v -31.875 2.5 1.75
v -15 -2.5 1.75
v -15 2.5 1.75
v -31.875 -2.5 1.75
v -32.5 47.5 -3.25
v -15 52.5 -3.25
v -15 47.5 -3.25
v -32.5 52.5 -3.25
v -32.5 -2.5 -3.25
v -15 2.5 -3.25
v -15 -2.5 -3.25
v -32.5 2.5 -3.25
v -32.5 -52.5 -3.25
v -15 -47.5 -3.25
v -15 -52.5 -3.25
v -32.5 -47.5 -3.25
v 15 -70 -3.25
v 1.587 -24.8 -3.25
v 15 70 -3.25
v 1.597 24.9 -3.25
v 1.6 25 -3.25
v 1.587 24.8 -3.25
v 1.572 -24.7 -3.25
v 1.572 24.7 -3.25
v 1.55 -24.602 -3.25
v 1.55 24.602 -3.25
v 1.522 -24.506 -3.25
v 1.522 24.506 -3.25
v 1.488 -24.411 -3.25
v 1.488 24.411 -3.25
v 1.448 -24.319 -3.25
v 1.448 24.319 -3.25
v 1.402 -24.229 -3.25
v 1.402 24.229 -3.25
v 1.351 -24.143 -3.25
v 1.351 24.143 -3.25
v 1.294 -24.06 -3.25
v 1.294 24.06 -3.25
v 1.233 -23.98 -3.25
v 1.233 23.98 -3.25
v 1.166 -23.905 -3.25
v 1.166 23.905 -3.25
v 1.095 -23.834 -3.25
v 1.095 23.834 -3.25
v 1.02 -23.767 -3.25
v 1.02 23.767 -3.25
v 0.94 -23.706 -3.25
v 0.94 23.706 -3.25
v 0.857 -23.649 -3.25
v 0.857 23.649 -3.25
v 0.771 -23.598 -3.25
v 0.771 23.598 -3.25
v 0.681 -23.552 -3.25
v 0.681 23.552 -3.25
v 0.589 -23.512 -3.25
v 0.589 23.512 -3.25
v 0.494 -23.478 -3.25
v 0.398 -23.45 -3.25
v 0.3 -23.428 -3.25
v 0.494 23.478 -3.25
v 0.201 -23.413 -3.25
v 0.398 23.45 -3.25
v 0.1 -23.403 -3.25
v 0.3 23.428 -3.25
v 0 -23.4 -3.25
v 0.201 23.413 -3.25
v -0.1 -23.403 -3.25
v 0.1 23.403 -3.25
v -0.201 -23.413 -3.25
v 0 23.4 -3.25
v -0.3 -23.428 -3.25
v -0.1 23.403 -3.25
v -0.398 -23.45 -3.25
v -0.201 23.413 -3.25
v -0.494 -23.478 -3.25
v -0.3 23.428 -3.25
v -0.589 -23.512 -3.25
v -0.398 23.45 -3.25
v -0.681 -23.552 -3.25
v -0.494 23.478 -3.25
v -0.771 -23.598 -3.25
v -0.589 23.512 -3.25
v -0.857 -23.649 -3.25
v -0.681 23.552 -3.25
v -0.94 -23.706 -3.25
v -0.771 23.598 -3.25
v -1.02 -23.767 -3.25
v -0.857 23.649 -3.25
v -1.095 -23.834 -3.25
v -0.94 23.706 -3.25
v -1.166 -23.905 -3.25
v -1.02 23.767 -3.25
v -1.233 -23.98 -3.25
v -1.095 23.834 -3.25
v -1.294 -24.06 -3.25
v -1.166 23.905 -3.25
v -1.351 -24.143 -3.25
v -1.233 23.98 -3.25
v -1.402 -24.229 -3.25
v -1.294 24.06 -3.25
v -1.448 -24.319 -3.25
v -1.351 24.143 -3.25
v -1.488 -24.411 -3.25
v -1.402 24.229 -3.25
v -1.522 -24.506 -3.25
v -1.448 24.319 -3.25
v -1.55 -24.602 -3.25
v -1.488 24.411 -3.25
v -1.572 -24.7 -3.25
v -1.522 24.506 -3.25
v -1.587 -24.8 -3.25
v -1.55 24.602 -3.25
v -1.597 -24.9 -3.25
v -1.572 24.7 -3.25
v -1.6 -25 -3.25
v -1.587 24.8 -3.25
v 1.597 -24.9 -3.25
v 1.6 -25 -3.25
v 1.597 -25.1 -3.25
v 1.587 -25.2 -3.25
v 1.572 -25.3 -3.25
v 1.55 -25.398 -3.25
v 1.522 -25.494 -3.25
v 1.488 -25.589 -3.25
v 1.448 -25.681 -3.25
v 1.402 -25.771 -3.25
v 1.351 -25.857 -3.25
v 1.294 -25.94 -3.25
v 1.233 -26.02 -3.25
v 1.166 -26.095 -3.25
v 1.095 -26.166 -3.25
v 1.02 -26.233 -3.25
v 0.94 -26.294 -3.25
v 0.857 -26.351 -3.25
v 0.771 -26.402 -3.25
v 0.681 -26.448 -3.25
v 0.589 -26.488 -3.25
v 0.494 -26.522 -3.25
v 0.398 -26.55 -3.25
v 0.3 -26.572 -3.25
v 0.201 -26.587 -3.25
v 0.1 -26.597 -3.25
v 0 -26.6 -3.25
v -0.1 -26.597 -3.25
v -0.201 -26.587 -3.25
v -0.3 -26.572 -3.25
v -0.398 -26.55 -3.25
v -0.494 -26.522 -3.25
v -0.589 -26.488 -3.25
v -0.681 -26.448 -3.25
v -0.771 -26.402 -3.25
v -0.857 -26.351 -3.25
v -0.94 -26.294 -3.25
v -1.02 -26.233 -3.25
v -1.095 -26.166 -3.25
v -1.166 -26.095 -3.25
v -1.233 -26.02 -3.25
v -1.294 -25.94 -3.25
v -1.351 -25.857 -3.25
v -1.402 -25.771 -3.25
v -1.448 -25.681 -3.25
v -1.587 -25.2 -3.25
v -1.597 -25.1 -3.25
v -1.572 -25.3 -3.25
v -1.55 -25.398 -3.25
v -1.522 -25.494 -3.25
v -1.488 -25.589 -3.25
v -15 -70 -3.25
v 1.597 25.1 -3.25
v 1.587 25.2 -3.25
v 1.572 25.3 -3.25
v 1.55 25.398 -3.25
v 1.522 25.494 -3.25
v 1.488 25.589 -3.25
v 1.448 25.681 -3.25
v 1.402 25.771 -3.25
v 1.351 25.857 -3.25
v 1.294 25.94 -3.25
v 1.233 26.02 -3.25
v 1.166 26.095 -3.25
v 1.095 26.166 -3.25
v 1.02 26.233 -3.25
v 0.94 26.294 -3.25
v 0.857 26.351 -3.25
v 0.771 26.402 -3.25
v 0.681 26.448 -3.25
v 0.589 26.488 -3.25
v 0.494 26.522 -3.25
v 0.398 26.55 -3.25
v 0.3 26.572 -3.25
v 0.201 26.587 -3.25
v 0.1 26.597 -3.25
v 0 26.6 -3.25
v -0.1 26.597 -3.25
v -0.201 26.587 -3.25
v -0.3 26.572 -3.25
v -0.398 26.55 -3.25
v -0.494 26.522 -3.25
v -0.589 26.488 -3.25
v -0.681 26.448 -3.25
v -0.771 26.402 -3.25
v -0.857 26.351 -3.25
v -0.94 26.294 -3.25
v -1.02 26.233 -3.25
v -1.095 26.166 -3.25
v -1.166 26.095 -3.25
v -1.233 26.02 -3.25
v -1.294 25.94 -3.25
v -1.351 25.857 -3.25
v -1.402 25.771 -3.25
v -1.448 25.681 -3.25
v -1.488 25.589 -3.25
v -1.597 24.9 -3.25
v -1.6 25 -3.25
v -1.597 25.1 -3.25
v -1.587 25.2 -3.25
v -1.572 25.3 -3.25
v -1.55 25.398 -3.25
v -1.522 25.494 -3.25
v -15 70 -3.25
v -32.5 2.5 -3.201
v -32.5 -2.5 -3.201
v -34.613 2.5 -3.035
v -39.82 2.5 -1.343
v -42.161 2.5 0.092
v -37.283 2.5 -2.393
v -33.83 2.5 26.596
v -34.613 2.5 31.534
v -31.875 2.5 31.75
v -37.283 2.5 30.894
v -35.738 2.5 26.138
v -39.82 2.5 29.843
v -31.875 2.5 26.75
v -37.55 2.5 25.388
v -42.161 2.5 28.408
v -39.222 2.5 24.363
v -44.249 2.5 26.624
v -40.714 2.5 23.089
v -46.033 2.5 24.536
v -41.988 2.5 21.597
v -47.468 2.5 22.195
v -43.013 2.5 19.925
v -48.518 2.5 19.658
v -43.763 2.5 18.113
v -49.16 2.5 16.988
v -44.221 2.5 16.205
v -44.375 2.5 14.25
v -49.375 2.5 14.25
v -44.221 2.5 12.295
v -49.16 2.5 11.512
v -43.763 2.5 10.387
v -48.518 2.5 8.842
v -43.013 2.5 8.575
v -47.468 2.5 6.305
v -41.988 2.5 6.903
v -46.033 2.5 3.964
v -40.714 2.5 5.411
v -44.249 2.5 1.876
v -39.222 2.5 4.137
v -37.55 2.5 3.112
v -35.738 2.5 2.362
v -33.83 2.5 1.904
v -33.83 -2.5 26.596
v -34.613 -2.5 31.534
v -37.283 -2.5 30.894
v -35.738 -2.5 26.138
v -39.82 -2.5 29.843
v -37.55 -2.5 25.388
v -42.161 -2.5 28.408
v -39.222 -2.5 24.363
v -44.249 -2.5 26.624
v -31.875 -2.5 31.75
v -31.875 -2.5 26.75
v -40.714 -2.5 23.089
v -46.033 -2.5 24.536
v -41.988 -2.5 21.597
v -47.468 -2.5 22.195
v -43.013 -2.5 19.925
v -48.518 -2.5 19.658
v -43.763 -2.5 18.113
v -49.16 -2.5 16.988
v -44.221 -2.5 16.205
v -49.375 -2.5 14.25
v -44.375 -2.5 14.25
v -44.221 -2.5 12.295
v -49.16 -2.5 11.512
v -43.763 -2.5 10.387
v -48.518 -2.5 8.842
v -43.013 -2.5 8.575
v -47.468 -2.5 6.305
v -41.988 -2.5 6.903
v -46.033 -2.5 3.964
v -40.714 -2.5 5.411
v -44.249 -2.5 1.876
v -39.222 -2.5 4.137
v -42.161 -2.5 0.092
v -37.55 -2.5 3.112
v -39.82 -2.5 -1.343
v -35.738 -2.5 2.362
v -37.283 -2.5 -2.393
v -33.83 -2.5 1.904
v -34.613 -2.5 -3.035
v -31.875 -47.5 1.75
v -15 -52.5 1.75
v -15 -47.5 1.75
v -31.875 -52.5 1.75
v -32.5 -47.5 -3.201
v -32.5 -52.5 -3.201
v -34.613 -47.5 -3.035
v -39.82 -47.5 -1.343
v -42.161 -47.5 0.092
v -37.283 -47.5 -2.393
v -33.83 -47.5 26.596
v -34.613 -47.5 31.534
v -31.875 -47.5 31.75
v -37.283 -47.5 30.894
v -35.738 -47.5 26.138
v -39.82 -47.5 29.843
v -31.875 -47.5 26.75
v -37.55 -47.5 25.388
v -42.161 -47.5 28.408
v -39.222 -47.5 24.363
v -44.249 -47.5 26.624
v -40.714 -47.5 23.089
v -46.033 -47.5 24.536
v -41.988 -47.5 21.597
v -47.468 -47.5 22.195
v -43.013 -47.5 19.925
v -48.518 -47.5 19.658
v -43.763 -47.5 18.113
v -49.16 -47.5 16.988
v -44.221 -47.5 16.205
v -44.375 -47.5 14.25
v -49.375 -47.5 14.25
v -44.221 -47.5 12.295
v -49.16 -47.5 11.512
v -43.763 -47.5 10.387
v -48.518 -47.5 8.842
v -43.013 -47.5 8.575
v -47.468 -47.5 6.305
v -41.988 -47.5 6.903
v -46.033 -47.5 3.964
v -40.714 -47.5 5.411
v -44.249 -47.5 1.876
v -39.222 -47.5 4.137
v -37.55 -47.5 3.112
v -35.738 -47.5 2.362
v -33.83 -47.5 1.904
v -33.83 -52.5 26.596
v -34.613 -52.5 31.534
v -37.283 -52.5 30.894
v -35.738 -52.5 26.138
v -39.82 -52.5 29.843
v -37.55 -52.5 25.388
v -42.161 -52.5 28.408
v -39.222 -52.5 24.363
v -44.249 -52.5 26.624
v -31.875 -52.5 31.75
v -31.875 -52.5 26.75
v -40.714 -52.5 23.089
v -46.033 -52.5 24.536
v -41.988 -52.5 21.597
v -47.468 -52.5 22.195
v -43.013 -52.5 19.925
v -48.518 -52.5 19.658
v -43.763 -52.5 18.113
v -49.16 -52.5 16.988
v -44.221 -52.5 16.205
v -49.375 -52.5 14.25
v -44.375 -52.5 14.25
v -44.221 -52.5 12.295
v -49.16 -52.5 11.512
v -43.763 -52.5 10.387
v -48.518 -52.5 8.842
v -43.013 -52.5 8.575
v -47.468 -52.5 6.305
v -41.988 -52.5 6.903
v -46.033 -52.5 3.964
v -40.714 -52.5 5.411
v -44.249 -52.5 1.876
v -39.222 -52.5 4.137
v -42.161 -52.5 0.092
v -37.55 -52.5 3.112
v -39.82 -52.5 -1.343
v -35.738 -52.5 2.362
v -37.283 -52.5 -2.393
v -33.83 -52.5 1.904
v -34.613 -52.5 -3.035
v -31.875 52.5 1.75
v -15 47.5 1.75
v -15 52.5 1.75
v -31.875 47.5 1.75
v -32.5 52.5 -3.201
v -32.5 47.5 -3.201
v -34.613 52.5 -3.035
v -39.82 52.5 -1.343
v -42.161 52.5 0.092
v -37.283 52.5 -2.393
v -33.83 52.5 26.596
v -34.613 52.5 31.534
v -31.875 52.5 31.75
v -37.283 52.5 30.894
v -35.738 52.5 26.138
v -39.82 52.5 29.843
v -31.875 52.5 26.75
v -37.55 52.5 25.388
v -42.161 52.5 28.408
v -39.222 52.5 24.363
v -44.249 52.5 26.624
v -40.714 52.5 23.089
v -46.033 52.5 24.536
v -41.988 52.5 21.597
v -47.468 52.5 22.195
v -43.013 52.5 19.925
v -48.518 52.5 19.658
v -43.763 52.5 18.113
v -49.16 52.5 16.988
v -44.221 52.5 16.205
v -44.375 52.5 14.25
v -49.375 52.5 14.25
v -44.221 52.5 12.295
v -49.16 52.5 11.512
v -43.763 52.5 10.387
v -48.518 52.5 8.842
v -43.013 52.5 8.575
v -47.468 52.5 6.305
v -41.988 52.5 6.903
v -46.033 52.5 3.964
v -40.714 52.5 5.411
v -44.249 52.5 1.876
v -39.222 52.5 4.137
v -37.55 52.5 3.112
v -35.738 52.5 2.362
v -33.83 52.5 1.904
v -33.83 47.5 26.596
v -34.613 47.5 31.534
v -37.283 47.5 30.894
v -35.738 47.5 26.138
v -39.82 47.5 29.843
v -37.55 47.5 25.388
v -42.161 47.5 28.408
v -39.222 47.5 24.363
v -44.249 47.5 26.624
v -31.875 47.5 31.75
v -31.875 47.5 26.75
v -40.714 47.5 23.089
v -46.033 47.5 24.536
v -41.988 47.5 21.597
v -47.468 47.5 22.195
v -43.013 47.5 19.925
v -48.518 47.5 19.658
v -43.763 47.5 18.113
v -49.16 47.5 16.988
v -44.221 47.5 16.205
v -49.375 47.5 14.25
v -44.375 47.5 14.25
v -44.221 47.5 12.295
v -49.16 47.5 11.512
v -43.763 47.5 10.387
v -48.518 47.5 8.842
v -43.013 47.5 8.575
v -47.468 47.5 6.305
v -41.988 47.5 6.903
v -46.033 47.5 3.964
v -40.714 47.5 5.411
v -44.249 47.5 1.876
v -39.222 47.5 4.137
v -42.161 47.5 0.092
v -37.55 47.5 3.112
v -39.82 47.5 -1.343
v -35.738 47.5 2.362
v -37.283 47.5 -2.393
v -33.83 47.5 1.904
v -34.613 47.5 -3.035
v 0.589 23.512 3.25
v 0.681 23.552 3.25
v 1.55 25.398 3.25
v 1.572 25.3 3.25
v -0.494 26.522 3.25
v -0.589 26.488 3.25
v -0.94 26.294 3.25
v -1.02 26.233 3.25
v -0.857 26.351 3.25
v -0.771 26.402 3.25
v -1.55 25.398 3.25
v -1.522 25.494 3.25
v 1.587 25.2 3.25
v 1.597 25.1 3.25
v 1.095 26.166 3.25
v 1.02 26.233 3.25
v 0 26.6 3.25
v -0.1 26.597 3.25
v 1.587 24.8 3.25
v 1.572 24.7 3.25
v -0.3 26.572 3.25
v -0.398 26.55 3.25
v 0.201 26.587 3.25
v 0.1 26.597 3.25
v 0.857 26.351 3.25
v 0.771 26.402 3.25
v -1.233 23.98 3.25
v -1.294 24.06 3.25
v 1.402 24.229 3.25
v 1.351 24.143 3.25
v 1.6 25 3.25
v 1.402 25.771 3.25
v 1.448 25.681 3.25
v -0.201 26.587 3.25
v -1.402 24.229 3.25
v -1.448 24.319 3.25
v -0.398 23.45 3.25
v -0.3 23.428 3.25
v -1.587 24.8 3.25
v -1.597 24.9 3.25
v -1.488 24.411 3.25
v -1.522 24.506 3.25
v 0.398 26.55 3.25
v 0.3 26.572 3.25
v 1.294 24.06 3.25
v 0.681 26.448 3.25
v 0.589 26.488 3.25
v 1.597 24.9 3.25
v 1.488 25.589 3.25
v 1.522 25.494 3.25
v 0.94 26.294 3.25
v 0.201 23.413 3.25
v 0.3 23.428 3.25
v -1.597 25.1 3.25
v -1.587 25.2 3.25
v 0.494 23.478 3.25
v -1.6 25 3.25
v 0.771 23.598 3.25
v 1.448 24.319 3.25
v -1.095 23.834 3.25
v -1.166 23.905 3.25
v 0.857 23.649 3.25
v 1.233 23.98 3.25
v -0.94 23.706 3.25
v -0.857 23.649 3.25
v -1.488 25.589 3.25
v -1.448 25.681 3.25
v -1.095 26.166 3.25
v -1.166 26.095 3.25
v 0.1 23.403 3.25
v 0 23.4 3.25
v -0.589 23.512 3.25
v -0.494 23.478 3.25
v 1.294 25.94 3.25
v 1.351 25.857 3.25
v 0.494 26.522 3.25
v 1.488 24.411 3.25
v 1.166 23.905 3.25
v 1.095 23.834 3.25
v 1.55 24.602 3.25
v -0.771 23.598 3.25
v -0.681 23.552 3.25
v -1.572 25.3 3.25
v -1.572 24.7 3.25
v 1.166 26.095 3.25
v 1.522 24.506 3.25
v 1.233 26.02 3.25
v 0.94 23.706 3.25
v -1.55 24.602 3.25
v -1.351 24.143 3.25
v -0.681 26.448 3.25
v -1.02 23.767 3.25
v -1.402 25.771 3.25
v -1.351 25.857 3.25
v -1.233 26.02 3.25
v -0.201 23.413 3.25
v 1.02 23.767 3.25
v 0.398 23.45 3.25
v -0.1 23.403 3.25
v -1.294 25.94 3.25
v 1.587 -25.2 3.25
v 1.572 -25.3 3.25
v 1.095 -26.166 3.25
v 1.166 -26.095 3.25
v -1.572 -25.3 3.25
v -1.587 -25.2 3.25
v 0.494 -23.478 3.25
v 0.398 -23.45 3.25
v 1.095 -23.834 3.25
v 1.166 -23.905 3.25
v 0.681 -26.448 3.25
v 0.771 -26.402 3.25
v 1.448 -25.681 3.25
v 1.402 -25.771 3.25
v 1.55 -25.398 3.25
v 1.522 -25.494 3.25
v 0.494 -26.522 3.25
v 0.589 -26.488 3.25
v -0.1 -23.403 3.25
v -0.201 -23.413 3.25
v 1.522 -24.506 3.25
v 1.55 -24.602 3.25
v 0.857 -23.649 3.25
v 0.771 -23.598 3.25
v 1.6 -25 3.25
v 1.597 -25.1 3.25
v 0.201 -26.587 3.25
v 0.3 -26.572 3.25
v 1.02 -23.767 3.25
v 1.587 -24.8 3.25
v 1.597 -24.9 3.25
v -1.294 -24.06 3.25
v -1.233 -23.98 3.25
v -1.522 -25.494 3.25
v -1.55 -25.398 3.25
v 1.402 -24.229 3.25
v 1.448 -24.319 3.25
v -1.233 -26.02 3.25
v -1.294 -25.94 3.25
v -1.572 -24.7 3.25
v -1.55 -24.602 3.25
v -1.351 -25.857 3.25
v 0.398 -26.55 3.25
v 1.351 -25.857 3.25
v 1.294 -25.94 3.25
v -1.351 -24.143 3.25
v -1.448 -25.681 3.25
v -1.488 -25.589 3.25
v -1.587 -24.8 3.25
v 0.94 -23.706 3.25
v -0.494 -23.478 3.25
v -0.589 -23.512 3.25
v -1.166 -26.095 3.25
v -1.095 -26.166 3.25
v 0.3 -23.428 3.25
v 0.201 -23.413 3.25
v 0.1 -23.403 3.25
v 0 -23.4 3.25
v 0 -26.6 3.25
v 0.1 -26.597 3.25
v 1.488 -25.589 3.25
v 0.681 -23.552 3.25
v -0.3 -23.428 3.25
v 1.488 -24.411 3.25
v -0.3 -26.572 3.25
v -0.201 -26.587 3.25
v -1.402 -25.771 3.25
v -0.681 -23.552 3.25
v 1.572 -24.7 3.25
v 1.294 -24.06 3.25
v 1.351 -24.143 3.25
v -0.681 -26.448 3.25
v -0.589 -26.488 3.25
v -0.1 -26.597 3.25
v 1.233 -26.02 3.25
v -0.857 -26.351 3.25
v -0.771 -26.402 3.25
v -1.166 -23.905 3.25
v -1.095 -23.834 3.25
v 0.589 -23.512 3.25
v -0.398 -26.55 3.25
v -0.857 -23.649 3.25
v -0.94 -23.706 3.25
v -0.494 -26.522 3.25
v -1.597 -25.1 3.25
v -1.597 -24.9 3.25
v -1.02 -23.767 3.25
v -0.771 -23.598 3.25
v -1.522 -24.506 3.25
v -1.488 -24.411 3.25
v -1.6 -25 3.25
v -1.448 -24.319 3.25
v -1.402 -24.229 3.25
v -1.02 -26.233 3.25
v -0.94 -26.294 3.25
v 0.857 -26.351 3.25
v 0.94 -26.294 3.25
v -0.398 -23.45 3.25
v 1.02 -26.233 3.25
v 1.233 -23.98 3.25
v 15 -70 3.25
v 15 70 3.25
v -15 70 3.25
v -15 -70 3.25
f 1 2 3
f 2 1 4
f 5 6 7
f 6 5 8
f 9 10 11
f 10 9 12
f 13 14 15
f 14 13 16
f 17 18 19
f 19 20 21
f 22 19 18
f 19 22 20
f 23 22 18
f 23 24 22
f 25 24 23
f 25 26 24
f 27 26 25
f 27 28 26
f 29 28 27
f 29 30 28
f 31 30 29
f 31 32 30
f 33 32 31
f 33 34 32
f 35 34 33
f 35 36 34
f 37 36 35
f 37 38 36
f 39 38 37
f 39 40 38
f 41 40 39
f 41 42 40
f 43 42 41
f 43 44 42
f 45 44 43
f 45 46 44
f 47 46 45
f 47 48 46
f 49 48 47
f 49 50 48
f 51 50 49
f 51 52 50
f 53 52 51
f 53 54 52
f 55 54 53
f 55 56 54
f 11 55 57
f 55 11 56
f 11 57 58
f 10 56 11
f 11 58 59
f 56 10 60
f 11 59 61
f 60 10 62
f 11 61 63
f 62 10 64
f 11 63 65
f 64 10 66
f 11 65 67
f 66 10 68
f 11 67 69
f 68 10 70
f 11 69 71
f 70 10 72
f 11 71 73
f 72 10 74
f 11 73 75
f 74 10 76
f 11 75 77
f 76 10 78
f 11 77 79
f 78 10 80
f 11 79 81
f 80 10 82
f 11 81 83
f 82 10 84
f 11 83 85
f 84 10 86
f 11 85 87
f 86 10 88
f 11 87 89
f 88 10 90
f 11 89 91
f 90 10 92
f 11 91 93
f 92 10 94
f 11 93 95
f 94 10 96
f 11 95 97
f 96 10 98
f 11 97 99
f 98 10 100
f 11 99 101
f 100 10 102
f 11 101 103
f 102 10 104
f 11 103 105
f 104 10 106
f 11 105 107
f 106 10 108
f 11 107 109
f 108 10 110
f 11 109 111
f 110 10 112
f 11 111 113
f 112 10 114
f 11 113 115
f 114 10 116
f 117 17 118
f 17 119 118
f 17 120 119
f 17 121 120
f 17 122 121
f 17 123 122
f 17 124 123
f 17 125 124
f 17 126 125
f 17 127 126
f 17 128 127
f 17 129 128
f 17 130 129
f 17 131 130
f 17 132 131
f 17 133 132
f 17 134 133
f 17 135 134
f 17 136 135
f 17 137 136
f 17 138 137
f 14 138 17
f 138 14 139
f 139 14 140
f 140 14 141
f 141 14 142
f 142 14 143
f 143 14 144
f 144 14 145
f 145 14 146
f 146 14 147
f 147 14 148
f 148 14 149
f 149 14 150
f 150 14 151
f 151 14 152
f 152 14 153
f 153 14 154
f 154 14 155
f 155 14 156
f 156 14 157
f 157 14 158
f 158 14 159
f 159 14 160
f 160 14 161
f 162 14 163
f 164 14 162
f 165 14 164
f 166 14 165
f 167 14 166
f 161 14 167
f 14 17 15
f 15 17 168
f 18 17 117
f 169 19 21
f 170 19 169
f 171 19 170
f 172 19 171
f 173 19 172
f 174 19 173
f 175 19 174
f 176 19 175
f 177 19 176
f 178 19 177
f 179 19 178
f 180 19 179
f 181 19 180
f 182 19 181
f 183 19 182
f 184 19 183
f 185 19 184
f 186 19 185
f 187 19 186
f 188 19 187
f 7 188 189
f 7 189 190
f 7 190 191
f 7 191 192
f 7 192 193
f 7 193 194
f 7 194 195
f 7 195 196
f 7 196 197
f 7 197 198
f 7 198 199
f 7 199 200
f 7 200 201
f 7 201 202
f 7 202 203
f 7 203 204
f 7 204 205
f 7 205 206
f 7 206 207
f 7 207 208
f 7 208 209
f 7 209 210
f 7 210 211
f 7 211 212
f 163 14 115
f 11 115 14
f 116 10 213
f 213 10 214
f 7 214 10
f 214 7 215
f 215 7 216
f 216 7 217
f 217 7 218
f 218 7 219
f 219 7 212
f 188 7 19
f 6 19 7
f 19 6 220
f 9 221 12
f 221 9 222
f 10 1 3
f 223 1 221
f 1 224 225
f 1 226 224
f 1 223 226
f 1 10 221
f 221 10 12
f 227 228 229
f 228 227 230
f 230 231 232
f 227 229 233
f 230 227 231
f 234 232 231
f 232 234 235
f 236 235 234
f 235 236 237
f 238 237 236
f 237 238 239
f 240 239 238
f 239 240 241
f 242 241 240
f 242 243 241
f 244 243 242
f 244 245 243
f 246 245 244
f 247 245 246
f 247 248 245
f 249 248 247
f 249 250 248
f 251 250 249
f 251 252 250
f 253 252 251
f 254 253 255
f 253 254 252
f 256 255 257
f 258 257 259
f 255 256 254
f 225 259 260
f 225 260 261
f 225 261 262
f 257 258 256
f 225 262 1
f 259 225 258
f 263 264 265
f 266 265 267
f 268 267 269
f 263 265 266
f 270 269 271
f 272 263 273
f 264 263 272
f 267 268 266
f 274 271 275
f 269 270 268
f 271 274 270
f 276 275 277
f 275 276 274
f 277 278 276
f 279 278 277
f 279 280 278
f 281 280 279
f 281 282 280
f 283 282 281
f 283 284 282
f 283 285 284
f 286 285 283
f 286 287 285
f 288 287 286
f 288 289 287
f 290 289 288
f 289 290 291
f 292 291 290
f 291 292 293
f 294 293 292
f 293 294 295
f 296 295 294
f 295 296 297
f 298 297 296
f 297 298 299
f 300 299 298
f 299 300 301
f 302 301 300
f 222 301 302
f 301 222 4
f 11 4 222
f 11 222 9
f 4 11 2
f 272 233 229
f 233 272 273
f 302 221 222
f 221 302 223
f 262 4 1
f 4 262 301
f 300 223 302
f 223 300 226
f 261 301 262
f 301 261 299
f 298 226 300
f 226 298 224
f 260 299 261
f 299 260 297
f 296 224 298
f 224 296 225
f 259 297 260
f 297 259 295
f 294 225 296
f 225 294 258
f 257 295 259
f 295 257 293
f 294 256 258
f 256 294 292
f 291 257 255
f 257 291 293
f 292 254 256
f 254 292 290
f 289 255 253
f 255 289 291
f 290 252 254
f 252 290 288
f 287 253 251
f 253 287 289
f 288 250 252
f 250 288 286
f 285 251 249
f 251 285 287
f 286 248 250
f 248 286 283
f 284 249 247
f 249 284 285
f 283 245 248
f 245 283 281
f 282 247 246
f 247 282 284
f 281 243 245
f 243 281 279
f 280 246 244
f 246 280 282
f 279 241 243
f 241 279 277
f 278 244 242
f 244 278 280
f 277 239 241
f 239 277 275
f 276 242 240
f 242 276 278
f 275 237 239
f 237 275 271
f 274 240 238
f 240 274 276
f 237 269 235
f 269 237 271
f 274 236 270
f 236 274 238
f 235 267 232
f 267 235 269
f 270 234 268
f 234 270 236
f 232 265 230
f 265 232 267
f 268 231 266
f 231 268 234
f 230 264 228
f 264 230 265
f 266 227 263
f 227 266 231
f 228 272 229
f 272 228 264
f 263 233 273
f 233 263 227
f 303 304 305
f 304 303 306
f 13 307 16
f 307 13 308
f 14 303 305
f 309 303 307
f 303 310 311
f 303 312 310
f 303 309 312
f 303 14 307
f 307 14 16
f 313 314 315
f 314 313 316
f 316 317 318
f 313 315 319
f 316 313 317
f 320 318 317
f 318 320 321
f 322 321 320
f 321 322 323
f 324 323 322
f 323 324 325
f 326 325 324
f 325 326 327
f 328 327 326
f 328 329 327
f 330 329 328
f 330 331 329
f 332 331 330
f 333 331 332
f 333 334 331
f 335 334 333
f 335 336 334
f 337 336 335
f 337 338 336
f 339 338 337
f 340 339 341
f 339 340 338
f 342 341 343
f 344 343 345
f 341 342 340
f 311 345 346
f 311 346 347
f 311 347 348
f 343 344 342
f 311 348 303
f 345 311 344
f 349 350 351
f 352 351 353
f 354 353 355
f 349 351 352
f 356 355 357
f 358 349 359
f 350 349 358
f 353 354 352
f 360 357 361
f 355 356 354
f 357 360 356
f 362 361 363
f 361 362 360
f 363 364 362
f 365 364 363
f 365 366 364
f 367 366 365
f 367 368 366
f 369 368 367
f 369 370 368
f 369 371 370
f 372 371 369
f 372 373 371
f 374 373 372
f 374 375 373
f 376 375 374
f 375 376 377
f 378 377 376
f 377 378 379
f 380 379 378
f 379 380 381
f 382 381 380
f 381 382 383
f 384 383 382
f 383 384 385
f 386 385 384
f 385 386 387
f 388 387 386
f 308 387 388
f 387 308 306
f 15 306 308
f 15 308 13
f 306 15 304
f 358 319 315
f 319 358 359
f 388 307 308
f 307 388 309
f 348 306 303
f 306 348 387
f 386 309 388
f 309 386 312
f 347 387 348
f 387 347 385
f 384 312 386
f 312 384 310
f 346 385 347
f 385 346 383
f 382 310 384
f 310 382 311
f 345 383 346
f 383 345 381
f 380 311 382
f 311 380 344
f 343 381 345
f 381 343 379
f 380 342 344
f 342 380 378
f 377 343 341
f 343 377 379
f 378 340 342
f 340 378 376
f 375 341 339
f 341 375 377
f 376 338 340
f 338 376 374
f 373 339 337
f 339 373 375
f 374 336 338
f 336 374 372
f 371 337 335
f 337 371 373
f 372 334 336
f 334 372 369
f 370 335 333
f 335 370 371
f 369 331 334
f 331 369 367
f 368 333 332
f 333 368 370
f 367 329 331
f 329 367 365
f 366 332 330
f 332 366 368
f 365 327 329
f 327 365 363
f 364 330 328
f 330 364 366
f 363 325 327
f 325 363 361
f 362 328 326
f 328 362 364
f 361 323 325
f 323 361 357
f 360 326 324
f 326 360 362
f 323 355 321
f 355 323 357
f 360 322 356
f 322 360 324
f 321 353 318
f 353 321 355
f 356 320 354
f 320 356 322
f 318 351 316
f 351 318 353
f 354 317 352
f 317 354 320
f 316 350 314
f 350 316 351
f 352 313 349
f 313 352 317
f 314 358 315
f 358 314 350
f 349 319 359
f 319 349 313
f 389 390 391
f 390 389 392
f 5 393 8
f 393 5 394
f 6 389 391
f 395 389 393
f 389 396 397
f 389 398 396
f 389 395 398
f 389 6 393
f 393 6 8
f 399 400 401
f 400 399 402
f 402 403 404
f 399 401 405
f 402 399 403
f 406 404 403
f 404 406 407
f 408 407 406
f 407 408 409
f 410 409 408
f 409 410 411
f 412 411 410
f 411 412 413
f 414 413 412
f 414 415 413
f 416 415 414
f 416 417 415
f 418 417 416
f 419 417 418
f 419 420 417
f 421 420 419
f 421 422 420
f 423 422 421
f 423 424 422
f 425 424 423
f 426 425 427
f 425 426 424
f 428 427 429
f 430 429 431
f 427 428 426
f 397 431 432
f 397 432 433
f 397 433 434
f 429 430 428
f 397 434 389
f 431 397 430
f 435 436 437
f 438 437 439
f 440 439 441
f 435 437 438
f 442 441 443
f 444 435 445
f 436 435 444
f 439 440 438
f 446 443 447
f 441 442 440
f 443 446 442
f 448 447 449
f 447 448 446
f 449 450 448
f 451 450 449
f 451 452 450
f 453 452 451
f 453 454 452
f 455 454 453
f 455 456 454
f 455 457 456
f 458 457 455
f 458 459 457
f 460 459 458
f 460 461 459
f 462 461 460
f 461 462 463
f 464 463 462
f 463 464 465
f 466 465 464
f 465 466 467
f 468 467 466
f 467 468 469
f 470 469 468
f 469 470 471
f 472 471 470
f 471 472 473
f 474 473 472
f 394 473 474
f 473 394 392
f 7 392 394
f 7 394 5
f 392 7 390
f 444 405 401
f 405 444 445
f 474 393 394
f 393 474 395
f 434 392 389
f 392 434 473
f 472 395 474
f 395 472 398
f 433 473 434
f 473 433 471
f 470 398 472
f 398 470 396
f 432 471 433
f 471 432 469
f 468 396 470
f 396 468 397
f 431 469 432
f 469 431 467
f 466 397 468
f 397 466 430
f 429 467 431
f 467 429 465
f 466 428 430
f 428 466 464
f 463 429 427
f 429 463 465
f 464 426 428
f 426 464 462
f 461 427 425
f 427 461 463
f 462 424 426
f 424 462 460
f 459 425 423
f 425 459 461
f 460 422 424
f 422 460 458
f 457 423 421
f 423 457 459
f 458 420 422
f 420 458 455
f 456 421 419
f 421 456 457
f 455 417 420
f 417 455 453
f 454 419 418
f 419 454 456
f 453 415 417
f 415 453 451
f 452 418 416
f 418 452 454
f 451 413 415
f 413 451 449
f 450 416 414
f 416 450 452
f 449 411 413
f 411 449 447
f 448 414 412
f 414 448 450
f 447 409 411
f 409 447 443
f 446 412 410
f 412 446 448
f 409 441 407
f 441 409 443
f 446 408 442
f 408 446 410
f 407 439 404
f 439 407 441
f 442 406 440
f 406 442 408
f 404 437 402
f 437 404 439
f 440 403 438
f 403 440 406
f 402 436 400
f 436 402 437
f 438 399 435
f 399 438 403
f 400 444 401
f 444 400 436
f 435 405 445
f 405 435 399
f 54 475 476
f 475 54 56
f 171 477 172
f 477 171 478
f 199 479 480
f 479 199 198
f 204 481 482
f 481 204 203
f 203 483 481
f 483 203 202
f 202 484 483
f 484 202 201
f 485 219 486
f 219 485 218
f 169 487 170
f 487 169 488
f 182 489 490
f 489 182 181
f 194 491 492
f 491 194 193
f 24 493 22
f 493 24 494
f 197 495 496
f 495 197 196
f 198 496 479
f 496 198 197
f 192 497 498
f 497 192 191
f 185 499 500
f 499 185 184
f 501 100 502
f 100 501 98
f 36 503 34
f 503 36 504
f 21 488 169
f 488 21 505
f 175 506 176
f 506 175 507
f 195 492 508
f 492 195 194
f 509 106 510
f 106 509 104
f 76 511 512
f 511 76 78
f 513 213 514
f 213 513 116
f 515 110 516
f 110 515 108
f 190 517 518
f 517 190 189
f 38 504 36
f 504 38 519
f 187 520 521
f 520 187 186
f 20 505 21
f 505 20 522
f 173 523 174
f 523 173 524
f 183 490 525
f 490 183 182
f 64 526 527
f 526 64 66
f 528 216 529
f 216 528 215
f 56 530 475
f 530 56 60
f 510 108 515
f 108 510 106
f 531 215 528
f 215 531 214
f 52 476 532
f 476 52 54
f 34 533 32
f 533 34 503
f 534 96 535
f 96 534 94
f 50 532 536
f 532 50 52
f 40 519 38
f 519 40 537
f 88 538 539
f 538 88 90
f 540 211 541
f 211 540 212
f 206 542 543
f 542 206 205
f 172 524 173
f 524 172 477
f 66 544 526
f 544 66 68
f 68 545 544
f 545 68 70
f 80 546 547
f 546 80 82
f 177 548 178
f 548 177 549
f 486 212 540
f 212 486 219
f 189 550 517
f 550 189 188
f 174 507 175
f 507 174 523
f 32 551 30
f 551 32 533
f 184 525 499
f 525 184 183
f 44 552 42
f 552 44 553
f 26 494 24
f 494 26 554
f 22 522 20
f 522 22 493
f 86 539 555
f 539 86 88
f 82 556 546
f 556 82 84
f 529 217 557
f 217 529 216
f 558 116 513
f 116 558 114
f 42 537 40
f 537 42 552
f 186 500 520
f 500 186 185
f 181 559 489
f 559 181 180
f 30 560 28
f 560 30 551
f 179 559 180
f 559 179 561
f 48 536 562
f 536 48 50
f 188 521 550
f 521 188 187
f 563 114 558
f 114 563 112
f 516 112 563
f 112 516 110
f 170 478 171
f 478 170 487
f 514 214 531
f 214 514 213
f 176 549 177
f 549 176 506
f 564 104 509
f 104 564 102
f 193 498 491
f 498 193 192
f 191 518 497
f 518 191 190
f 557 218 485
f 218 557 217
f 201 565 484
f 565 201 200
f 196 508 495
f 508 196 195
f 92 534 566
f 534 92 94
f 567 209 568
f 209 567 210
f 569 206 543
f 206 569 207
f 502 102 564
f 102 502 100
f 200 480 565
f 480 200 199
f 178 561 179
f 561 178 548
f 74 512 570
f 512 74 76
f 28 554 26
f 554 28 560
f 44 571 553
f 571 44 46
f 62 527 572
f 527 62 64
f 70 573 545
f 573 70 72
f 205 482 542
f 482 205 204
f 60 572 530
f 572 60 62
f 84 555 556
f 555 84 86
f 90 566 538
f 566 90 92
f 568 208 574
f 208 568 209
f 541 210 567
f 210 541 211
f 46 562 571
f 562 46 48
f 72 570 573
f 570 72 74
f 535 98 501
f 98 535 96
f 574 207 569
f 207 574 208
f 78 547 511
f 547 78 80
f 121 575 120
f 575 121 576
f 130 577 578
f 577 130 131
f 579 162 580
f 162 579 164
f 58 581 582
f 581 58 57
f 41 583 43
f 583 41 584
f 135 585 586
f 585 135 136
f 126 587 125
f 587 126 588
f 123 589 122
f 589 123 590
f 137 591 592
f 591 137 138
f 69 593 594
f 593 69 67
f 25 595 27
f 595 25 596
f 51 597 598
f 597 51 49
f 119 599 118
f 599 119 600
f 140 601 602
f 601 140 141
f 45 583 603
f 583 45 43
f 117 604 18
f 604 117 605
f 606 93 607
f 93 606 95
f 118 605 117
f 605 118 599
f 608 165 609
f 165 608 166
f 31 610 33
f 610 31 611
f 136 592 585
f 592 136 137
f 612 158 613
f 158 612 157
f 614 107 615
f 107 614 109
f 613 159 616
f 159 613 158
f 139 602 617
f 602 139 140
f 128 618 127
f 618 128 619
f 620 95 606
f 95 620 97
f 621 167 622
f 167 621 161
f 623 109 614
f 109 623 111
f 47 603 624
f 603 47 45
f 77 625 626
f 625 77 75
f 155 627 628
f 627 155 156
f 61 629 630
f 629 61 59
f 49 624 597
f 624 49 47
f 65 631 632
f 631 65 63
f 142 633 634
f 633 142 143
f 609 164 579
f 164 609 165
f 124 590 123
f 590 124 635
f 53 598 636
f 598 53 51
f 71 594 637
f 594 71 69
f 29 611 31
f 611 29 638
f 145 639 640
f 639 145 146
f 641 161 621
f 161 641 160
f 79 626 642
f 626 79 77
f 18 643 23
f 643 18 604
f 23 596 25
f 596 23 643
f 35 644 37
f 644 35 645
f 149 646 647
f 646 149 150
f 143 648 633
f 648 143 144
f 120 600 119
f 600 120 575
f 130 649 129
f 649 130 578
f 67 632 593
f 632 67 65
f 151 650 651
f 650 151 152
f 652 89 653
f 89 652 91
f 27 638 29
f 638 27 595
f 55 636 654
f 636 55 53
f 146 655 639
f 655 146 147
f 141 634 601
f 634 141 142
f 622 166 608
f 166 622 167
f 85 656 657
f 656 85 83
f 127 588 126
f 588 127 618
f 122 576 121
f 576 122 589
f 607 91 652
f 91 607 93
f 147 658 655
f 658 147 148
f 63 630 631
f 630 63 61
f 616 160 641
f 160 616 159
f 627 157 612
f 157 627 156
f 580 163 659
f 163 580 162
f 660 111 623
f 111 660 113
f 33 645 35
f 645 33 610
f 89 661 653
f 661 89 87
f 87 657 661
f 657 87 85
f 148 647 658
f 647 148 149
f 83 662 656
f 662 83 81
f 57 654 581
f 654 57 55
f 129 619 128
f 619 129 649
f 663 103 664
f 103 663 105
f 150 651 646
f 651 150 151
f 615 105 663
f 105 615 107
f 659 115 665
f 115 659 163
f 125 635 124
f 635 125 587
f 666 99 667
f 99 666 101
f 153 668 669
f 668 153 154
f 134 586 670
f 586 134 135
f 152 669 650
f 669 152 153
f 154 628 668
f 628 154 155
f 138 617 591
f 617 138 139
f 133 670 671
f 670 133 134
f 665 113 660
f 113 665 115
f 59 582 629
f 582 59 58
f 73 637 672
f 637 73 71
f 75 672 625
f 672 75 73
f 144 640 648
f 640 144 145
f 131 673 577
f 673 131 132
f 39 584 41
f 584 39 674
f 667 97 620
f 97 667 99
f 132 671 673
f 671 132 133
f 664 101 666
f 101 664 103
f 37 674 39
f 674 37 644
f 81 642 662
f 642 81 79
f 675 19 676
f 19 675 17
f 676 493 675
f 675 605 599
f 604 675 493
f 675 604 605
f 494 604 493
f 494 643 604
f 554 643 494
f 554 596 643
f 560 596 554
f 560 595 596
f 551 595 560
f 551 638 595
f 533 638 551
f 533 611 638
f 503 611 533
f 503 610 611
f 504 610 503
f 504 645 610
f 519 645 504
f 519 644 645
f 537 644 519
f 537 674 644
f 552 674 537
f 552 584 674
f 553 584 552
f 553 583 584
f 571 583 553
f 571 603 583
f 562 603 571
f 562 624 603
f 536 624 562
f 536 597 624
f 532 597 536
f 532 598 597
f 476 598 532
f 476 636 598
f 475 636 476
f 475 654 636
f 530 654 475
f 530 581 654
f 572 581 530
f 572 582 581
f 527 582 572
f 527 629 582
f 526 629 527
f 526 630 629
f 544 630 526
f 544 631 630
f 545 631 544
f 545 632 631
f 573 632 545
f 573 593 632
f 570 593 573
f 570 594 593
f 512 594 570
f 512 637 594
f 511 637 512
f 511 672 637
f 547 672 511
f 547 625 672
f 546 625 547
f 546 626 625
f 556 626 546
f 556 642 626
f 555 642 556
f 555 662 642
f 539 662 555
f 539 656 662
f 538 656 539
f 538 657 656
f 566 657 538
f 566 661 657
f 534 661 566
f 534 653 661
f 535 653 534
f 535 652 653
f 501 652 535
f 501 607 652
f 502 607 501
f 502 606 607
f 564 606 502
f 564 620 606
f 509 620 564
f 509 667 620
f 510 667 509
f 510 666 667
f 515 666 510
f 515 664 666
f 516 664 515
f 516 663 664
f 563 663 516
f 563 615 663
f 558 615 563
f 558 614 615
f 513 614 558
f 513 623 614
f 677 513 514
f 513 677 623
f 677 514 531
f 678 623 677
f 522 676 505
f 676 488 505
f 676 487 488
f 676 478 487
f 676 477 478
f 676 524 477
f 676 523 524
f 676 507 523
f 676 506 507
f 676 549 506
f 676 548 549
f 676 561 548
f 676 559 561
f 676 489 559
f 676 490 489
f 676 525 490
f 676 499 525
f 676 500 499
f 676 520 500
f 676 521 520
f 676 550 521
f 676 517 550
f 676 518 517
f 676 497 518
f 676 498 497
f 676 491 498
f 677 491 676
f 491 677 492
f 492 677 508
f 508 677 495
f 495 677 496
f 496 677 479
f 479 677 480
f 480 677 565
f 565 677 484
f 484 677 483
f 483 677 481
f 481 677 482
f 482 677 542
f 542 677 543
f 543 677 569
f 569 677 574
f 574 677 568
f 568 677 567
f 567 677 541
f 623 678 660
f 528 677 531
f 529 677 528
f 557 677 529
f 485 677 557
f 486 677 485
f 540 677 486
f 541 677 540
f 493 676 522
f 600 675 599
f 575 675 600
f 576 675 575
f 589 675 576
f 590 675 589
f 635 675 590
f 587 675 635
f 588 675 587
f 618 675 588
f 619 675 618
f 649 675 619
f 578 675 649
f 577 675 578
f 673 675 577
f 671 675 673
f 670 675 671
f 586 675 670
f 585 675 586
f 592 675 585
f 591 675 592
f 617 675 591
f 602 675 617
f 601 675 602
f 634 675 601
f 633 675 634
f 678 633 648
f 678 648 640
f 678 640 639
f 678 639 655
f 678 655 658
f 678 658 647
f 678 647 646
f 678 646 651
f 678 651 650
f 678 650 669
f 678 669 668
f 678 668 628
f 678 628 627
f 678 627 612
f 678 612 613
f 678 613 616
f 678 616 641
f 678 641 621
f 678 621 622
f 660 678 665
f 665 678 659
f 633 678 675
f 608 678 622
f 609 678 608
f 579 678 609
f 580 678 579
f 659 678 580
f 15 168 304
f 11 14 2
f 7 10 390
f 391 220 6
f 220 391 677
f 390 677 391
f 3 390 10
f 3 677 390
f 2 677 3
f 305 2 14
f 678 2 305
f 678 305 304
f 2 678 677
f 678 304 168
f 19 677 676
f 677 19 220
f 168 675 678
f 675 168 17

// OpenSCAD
$fn = 100;
union()
{
  difference()
  {
    cube(size = [30, 140, 6.5], center = true);
    translate(v = [-15, 0, 0])
    {
      translate(v = [0, 0, -0.75])
      {
        union()
        {
          union()
          {
            cube(size = [35, 5, 5], center = true);
            translate(v = [0, 0, 15])
            {
              translate(v = [-24.375, 0, 0])
              {
                rotate(a = [0, 90, 90], v = undef)
                {
                  translate(v = [0, -7.5, 0])
                  {
                    rotate_extrude(angle = 180, convexity = 4, $fn = 40)
                    {
                      translate(v = [15, 0, 0])
                      {
                        square(size = [5, 5], center = true);
                      }
                    }
                  }
                }
              }
            }
          }
          translate(v = [0, -50, 0])
          {
            union()
            {
              cube(size = [35, 5, 5], center = true);
              translate(v = [0, 0, 15])
              {
                translate(v = [-24.375, 0, 0])
                {
                  rotate(a = [0, 90, 90], v = undef)
                  {
                    translate(v = [0, -7.5, 0])
                    {
                      rotate_extrude(angle = 180, convexity = 4, $fn = 40)
                      {
                        translate(v = [15, 0, 0])
                        {
                          square(size = [5, 5], center = true);
                        }
                      }
                    }
                  }
                }
              }
            }
          }
          translate(v = [0, 50, 0])
          {
            union()
            {
              cube(size = [35, 5, 5], center = true);
              translate(v = [0, 0, 15])
              {
                translate(v = [-24.375, 0, 0])
                {
                  rotate(a = [0, 90, 90], v = undef)
                  {
                    translate(v = [0, -7.5, 0])
                    {
                      rotate_extrude(angle = 180, convexity = 4, $fn = 40)
                      {
                        translate(v = [15, 0, 0])
                        {
                          square(size = [5, 5], center = true);
                        }
                      }
                    }
                  }
                }
              }
            }
          }
        }
      }
    }
    union()
    {
      translate(v = [0, 25, 0])
      {
        cylinder(h = 6.53, r = 1.6, center = true);
      }
      translate(v = [0, -25, 0])
      {
        cylinder(h = 6.53, r = 1.6, center = true);
      }
    }
  }
  translate(v = [-15, 0, 0])
  {
    translate(v = [0, 0, -0.75])
    {
      union()
      {
        union()
        {
          cube(size = [35, 5, 5], center = true);
          translate(v = [0, 0, 15])
          {
            translate(v = [-24.375, 0, 0])
            {
              rotate(a = [0, 90, 90], v = undef)
              {
                translate(v = [0, -7.5, 0])
                {
                  rotate_extrude(angle = 180, convexity = 4, $fn = 40)
                  {
                    translate(v = [15, 0, 0])
                    {
                      square(size = [5, 5], center = true);
                    }
                  }
                }
              }
            }
          }
        }
        translate(v = [0, -50, 0])
        {
          union()
          {
            cube(size = [35, 5, 5], center = true);
            translate(v = [0, 0, 15])
            {
              translate(v = [-24.375, 0, 0])
              {
                rotate(a = [0, 90, 90], v = undef)
                {
                  translate(v = [0, -7.5, 0])
                  {
                    rotate_extrude(angle = 180, convexity = 4, $fn = 40)
                    {
                      translate(v = [15, 0, 0])
                      {
                        square(size = [5, 5], center = true);
                      }
                    }
                  }
                }
              }
            }
          }
        }
        translate(v = [0, 50, 0])
        {
          union()
          {
            cube(size = [35, 5, 5], center = true);
            translate(v = [0, 0, 15])
            {
              translate(v = [-24.375, 0, 0])
              {
                rotate(a = [0, 90, 90], v = undef)
                {
                  translate(v = [0, -7.5, 0])
                  {
                    rotate_extrude(angle = 180, convexity = 4, $fn = 40)
                    {
                      translate(v = [15, 0, 0])
                      {
                        square(size = [5, 5], center = true);
                      }
                    }
                  }
                }
              }
            }
          }
        }
      }
    }
  }
}
